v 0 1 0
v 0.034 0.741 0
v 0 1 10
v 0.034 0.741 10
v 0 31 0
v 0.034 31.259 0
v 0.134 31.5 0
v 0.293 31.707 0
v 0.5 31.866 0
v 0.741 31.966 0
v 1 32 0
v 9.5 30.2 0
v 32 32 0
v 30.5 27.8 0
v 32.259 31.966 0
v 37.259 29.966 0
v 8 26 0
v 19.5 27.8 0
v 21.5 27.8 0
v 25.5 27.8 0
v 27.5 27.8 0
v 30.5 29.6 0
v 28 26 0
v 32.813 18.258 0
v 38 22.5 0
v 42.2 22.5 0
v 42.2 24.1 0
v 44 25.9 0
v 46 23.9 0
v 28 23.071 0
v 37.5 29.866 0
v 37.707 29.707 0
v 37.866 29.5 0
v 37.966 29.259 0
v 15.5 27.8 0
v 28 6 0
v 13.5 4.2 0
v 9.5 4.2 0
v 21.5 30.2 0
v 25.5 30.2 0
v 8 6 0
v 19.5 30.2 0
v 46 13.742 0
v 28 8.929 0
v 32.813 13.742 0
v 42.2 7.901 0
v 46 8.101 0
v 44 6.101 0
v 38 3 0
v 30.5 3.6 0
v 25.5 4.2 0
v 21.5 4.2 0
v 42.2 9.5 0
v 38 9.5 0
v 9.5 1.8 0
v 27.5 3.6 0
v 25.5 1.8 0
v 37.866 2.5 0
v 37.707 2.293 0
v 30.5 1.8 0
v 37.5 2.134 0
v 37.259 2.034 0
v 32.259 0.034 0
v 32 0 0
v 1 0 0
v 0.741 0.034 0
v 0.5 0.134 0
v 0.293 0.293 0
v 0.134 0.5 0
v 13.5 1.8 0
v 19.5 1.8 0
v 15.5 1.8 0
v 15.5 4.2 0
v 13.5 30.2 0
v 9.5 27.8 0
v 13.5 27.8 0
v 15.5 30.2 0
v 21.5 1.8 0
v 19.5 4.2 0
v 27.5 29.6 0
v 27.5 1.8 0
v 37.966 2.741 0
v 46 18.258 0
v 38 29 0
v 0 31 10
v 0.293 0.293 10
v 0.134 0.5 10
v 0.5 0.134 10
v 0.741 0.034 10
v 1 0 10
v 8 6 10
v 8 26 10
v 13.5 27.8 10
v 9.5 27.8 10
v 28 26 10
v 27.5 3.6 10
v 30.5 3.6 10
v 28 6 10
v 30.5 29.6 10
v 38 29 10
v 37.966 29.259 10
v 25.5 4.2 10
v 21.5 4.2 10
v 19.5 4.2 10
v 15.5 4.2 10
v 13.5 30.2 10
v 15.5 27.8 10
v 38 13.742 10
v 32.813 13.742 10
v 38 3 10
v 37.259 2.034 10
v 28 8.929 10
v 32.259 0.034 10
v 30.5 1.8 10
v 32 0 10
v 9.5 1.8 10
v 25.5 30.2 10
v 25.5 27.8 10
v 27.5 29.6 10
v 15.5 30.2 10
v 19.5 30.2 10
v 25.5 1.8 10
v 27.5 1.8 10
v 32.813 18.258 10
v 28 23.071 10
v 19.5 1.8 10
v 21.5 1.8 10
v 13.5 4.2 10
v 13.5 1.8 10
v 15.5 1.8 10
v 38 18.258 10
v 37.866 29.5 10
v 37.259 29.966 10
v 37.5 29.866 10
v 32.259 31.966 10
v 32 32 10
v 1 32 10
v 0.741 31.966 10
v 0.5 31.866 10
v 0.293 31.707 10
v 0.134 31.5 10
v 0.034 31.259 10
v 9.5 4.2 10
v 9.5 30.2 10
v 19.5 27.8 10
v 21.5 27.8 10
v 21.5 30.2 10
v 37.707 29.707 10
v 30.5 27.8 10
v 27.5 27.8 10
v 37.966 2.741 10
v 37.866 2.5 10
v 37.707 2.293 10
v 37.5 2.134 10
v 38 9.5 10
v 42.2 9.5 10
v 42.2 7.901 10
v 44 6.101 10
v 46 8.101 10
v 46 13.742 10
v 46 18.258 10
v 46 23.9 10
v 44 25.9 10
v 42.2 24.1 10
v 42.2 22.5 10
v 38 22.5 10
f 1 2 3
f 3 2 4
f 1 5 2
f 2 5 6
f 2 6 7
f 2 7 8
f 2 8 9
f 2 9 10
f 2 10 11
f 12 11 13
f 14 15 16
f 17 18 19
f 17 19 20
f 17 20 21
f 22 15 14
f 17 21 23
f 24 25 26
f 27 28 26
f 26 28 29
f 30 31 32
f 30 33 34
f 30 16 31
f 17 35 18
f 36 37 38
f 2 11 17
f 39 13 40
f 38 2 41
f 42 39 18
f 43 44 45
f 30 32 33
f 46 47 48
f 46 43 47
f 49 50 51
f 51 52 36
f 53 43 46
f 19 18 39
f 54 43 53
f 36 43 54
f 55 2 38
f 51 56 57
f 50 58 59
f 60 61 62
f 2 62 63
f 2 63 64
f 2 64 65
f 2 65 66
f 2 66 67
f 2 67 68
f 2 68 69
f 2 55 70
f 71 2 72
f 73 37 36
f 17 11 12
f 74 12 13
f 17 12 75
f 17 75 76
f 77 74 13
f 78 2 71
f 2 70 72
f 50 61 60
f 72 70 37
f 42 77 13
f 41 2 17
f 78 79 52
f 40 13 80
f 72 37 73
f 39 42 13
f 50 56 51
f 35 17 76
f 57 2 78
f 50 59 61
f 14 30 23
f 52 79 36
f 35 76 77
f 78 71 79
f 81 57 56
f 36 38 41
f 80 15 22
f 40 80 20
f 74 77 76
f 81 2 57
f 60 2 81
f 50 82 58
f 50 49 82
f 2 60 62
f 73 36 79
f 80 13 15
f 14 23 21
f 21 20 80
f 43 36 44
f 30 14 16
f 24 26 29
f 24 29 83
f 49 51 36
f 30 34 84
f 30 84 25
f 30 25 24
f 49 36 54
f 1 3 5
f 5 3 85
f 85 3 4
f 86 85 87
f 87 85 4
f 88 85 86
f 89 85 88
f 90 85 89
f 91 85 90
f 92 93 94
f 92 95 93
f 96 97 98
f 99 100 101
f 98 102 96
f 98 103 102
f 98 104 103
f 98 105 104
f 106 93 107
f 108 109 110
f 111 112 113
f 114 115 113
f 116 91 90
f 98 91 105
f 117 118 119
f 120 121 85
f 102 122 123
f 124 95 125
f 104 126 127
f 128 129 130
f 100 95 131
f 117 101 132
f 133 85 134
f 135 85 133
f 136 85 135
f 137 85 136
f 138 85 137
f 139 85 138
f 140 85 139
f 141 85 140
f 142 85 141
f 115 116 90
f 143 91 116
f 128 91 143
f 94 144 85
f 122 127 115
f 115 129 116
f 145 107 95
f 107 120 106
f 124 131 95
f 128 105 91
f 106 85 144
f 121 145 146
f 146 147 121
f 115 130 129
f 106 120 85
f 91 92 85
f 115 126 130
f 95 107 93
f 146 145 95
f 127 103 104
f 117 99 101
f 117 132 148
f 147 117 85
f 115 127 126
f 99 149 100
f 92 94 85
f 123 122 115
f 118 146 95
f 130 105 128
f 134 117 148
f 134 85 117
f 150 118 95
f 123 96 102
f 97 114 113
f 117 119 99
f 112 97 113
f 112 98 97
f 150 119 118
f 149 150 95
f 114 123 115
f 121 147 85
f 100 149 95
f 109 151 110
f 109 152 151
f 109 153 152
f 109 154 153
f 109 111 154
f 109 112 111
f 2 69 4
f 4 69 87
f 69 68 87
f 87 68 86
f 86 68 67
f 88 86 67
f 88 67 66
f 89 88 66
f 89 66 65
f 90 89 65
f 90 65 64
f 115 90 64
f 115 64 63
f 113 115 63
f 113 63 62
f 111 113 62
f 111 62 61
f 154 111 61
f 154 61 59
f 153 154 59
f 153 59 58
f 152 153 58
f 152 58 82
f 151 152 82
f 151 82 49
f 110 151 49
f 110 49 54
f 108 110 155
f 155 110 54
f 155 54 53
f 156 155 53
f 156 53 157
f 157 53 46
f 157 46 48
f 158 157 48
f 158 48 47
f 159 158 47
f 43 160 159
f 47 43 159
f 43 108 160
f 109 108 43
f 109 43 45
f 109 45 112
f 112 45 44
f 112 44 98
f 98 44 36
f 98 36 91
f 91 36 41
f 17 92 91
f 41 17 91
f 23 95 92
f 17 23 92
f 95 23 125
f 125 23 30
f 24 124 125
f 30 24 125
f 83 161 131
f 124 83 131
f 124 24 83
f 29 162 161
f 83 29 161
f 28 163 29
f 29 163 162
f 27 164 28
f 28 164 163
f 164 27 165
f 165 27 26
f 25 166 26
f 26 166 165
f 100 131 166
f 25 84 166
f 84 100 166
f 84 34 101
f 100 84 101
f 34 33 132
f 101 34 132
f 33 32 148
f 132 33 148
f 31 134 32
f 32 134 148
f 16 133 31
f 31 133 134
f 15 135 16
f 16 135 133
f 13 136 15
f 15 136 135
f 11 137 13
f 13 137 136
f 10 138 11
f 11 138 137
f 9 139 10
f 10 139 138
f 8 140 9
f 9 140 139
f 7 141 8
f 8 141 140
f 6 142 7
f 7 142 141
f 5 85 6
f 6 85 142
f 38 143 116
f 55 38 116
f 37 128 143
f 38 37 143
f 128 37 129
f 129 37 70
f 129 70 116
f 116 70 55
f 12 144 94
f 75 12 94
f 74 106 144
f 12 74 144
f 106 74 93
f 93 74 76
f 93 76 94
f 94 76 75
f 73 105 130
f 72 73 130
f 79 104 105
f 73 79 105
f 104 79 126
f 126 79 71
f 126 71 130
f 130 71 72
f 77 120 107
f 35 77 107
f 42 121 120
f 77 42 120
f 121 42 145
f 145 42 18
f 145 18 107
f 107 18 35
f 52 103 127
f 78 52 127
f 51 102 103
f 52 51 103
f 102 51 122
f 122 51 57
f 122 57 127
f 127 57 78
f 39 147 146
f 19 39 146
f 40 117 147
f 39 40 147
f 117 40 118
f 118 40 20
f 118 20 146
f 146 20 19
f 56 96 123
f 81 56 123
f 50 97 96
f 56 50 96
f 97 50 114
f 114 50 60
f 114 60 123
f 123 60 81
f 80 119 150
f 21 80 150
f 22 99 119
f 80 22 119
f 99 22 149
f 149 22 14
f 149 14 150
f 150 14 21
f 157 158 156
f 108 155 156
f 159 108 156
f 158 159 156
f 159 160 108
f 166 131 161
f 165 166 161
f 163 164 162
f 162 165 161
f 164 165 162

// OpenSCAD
// file: tools/MCAD/metric_fasteners_tab.scad
//
// Symbols
//
M1x0_25 = 0;
M1 = M1x0_25;
M1_2x0_25 = 1;
M1_2 = M1_2x0_25;
M1_4x0_3 = 2;
M1_4 = M1_4x0_3;
M1_6x0_35 = 3;
M1_6 = M1_6x0_35;
M2x0_4 = 4;
M2 = M2x0_4;
M2_5x0_45 = 5;
M2_5 = M2_5x0_45;
M3x0_5 = 6;
M3 = M3x0_5;
M3_5x0_6 = 7;
M3_5 = M3_5x0_6;
M4x0_7 = 8;
M4 = M4x0_7;
M5x0_8 = 9;
M5 = M5x0_8;
M6x1 = 10;
M6 = M6x1;
M7x1 = 11;
M7 = M7x1;
M8x1 = 12;
M8x1_25 = 13;
M8 = M8x1_25;
M10x1 = 14;
M10x1_25 = 15;
M10x1_5 = 16;
M10 = M10x1_5;
M12x1_25 = 17;
M12x1_5 = 18;
M12x1_75 = 19;
M12 = M12x1_75;
M14x1_5 = 20;
M14x2 = 21;
M14 = M14x2;
M16x1_5 = 22;
M16x2 = 23;
M16 = M16x2;
M18x1_5 = 24;
M18x2 = 25;
M18x2_5 = 26;
M18 = M18x2_5;
M20x1_5 = 27;
M20x2 = 28;
M20x2_5 = 29;
M20 = M20x2_5;
M22x1_5 = 30;
M22x2 = 31;
M22x2_5 = 32;
M22 = M22x2_5;
M24x2 = 33;
M24x3 = 34;
M24 = M24x3;
M27x2 = 35;
M27x3 = 36;
M27 = M27x3;
M30x2 = 37;
M30x3_5 = 38;
M30 = M30x3_5;
M33x2 = 39;
M33x3_5 = 40;
M33 = M33x3_5;
M36x3 = 41;
M36x4 = 42;
M36 = M36x4;
M39x3 = 43;
M39x4 = 44;
M39 = M39x4;
M42x3 = 45;
M42x4_5 = 46;
M42 = M42x4_5;
M45x3 = 47;
M45x4_5 = 48;
M45 = M45x4_5;
M48x3 = 49;
M48x5 = 50;
M48 = M48x5;
M52x4 = 51;
M52x5 = 52;
M52 = M52x5;
M56x4 = 53;
M56x5_5 = 54;
M56 = M56x5_5;
M60x4 = 55;
M60x5_5 = 56;
M60 = M60x5_5;
M64x4 = 57;
M64x6 = 58;
M64 = M64x6;

//
// Threads
//
METRIC_THREADS = [
	/* d, p */
	[1, 0.25],
	[1.2, 0.25],
	[1.4, 0.3],
	[1.6, 0.35],
	[2, 0.4],
	[2.5, 0.45],
	[3, 0.5],
	[3.5, 0.6],
	[4, 0.7],
	[5, 0.8],
	[6, 1],
	[7, 1],
	[8, 1],
	[8, 1.25],
	[10, 1],
	[10, 1.25],
	[10, 1.5],
	[12, 1.25],
	[12, 1.5],
	[12, 1.75],
	[14, 1.5],
	[14, 2],
	[16, 1.5],
	[16, 2],
	[18, 1.5],
	[18, 2],
	[18, 2.5],
	[20, 1.5],
	[20, 2],
	[20, 2.5],
	[22, 1.5],
	[22, 2],
	[22, 2.5],
	[24, 2],
	[24, 3],
	[27, 2],
	[27, 3],
	[30, 2],
	[30, 3.5],
	[33, 2],
	[33, 3.5],
	[36, 3],
	[36, 4],
	[39, 3],
	[39, 4],
	[42, 3],
	[42, 4.5],
	[45, 3],
	[45, 4.5],
	[48, 3],
	[48, 5],
	[52, 4],
	[52, 5],
	[56, 4],
	[56, 5.5],
	[60, 4],
	[60, 5.5],
	[64, 4],
	[64, 6],
];

//
// Hexagonal heads and nuts
//
METRIC_HEXAGONAL_HEADS_AND_NUTS = [
	/* d, m, s */
	[1, 0.8, 2.5],
	[1.2, 1.0, 3.0],
	[1.4, 1.2, 3.0],
	[1.6, 1.3, 3.2],
	[2, 1.6, 4.0],
	[2.5, 2.0, 5.0],
	[3, 2.4, 5.5],
	[3.5, 2.8, 6.0],
	[4, 3.2, 7.0],
	[5, 4.7, 8.0],
	[6, 5.2, 10.0],
	[7, 5.5, 11.0],
	[8, 6.8, 13.0],
	[8, 6.8, 13.0],
	[10, 8.4, 16.0],
	[10, 8.4, 16.0],
	[10, 8.4, 16.0],
	[12, 10.8, 18.0],
	[12, 10.8, 18.0],
	[12, 10.8, 18.0],
	[14, 12.8, 21.0],
	[14, 12.8, 21.0],
	[16, 14.8, 24.0],
	[16, 14.8, 24.0],
	[18, 15.8, 27.0],
	[18, 15.8, 27.0],
	[18, 15.8, 27.0],
	[20, 18.0, 30.0],
	[20, 18.0, 30.0],
	[20, 18.0, 30.0],
	[22, 19.4, 34.0],
	[22, 19.4, 34.0],
	[22, 19.4, 34.0],
	[24, 21.5, 36.0],
	[24, 21.5, 36.0],
	[27, 23.8, 41.0],
	[27, 23.8, 41.0],
	[30, 25.6, 46.0],
	[30, 25.6, 46.0],
	[33, 28.7, 50.0],
	[33, 28.7, 50.0],
	[36, 31.0, 55.0],
	[36, 31.0, 55.0],
	[39, 33.4, 60.0],
	[39, 33.4, 60.0],
	[42, 34.0, 65.0],
	[42, 34.0, 65.0],
	[45, 36.0, 70.0],
	[45, 36.0, 70.0],
	[48, 38.0, 75.0],
	[48, 38.0, 75.0],
	[52, 42.0, 80.0],
	[52, 42.0, 80.0],
	[56, 45.0, 85.0],
	[56, 45.0, 85.0],
	[60, 48.0, 90.0],
	[60, 48.0, 90.0],
	[64, 51.0, 95.0],
	[64, 51.0, 95.0],
];

//
// Washers
//
METRIC_WASHERS = [
	/* wd1, wd2, wh */
	[1.1, 3, 0.3],
	[1.3, 3.5, 0.3],
	[1.5, 4, 0.3],
	[1.7, 4, 0.3],
	[2.2, 5, 0.3],
	[2.7, 6, 0.5],
	[3.2, 7, 0.5],
	[3.7, 8, 0.5],
	[4.3, 9, 0.8],
	[5.3, 10, 1],
	[6.4, 12, 1.6],
	[7.4, 14, 1.6],
	[8.4, 16, 1.6],
	[8.4, 16, 1.6],
	[10.5, 20, 2],
	[10.5, 20, 2],
	[10.5, 20, 2],
	[13, 24, 2.5],
	[13, 24, 2.5],
	[13, 24, 2.5],
	[15, 28, 2.5],
	[15, 28, 2.5],
	[17, 30, 3],
	[17, 30, 3],
	[19, 34, 3],
	[19, 34, 3],
	[19, 34, 3],
	[21, 37, 3],
	[21, 37, 3],
	[21, 37, 3],
	[23, 39, 3],
	[23, 39, 3],
	[23, 39, 3],
	[25, 44, 4],
	[25, 44, 4],
	[28, 50, 4],
	[28, 50, 4],
	[31, 56, 4],
	[31, 56, 4],
	[34, 60, 5],
	[34, 60, 5],
	[37, 66, 5],
	[37, 66, 5],
	[42, 72, 6],
	[42, 72, 6],
	[45, 78, 8],
	[45, 78, 8],
	[48, 85, 8],
	[48, 85, 8],
	[52, 92, 8],
	[52, 92, 8],
	[56, 98, 8],
	[56, 98, 8],
	[62, 105, 10],
	[62, 105, 10],
	[66, 110, 10],
	[66, 110, 10],
	[70, 115, 10],
	[70, 115, 10],
];
// file: tools/MCAD/metric_fasteners.scad
// -*- mode: scad; c-basic-offset: 4; c-file-style: "k&r"; indent-tabs-mode: nil -*-

/** \file fasteners.scad Metric fasteners: bolts, nuts, washers etc.
 */

include <metric_fasteners_tab.scad>

/**
 * The thickness of a hex nut.
 *
 * @param size  Index in the tables. Use M* variables.
 */
function hex_nut_thickness(size) = METRIC_HEXAGONAL_HEADS_AND_NUTS[size][1];

/**
 * Basic metric bolt with hexagonal head.
 *
 * @param size Index in the tables. Use M* variables.
 *
 * @param length Length of the thread.
 */

module hex_bolt(size, length)
{
    d = METRIC_THREADS[size][0];
    m = METRIC_HEXAGONAL_HEADS_AND_NUTS[size][1];
    s = METRIC_HEXAGONAL_HEADS_AND_NUTS[size][2];
    a = 0.1 * m;
    b = s / 1.73205;
    bolt_length = (length == undef) ? m : length;
    render()
        union()
    {
        translate([0, 0, -a])
            cylinder(r = d/2, h=bolt_length + a, $fn=24);
        translate([0, 0, -m])
            cylinder(r = b, h = m, $fn = 6);
    }
}

/**
 * Basic metric hexagonal nut *without* a threaded hole in it.
 *
 * @param size Index in the tables. Use M* variables
 */

module hex_nut (size)
{
    d = METRIC_THREADS[size][0];
    m = METRIC_HEXAGONAL_HEADS_AND_NUTS[size][1];
    s = METRIC_HEXAGONAL_HEADS_AND_NUTS[size][2];
    a = 0.1 * m;
    b = s / 1.73205;

    render ()
        cylinder (r = b, h = m, $fn = 6);
}

/**
 * Basic metric hexagonal nut *with* a hole in it. Avoid using this
 * module to carve holes for nuts and bolts because you may not get a
 * manifold mesh.
 *
 * @param size Index in the tables. Use M* variables
 */

module hex_nut_hole (size)
{
    d = METRIC_THREADS[size][0];
    m = METRIC_HEXAGONAL_HEADS_AND_NUTS[size][1];
    s = METRIC_HEXAGONAL_HEADS_AND_NUTS[size][2];
    a = 0.1 * m;
    b = s / 1.73205;

    render ()
        difference ()
    {
        cylinder (r = b, h = m, $fn = 6);
        translate ([0, 0, -0.05])
            cylinder (d = d, h = m + 0.1, $fn = 26);
    }
}
// main file
use <tools/MCAD/metric_fasteners.scad>

// Part PARAMETERS
overall_thickness = 10;
extrusion_width = 20;
extrusion_height = 20;
wall_thickness = 6;
clip_width = 13;
clip_length = 13;
clip_length_offset = 5;
clip_flange_width = 8;	// FIXME: actually this is size of arrow cube, isn't rly usable as parametrized

// CALCULATIONS
clip_channel_height = clip_width - wall_thickness * 1.414;
extrusion_channel_offset = 2;		// affects thickness of solid wall

assembly(ot = overall_thickness, extw = extrusion_width, exth = extrusion_height, wt = wall_thickness, ceh = clip_width, cl = clip_length, clo = clip_length_offset, cft = clip_flange_width, cch = clip_channel_height);

module assembly(ot, extw, exth, wt, ceh, cl, clo, cft, cch) {
difference() {
union() {
// extrusion clip base
hull() {
minkowski() {
translate([1, 1, 0]) cube([extw + wt * 2 - 1, exth + wt * 2 - 2, ot - 0.01]);
cylinder(r=1, h=0.01, $fn=24);
}
minkowski() {
translate([extw + wt * 2 + 1, 6 / 2, 0]) cube([clo - 1, exth + wt * 2 - 6, ot - 0.01]);
cylinder(r=1, h=0.01, $fn=24);
}
}
// spring clip
translate([extw + clo + cl, (exth + 2 * wt) / 2, ot / 2]) cube(size = [cl, ceh, ot], center = true);
difference() {
translate([extw + wt + clo + cl, ((exth + 2 * wt) - (sqrt(2) * (cft + wt))) / 2, 0]) rotate([0, 0, 45]) cube([cft + wt, cft + wt, ot]); 
translate([extw + clo + cl - cft, 0, -0.01]) cube([cft + wt * 0.7, exth + 2 * wt, ot + 0.02]);
// cutoff clip end
translate([extw + clo + cl + cft, 0, -0.01]) cube([cft + wt * 0.7, exth + 2 * wt, ot + 0.02]);
}
}
// extrusion channel
translate([wt + extrusion_channel_offset, wt, -0.01]) cube([extw, exth, ot + 0.02]);
// angled cut in channel
translate([extw + wt + extrusion_channel_offset, (exth + 2 * wt) / 2, ot / 2]) rotate([0, 0, 45]) cube(size=[extw * 0.5, exth * 0.5, ot + 0.02], center=true);
// extrusion clip freedom
for (y = [extw + wt + ( 6 * wt / 20), 6 * wt / 20]) {
translate([wt * 1.25 + extrusion_channel_offset, y, -0.01]) cube([exth * 0.2, wt * 0.4, ot + 0.02]);
translate([wt * 2.25 + extrusion_channel_offset, y, -0.01]) cube([exth * 0.2, wt * 0.4, ot + 0.02]);
translate([wt * 3.25 + extrusion_channel_offset, y, -0.01]) cube([exth * 0.2, wt * 0.4, ot + 0.02]);
translate([wt * 4.25 + extrusion_channel_offset, y, -0.01]) cube([exth * 0.15, wt * 0.3, ot + 0.02]);
}
// spring clip channel
translate([(extw + wt * 2) / 2, (exth + wt * 2) / 2 - (cch / 2), -0.01]) cube([exth + cl + clo + 5, cch, ot + 0.02]);
}

}
